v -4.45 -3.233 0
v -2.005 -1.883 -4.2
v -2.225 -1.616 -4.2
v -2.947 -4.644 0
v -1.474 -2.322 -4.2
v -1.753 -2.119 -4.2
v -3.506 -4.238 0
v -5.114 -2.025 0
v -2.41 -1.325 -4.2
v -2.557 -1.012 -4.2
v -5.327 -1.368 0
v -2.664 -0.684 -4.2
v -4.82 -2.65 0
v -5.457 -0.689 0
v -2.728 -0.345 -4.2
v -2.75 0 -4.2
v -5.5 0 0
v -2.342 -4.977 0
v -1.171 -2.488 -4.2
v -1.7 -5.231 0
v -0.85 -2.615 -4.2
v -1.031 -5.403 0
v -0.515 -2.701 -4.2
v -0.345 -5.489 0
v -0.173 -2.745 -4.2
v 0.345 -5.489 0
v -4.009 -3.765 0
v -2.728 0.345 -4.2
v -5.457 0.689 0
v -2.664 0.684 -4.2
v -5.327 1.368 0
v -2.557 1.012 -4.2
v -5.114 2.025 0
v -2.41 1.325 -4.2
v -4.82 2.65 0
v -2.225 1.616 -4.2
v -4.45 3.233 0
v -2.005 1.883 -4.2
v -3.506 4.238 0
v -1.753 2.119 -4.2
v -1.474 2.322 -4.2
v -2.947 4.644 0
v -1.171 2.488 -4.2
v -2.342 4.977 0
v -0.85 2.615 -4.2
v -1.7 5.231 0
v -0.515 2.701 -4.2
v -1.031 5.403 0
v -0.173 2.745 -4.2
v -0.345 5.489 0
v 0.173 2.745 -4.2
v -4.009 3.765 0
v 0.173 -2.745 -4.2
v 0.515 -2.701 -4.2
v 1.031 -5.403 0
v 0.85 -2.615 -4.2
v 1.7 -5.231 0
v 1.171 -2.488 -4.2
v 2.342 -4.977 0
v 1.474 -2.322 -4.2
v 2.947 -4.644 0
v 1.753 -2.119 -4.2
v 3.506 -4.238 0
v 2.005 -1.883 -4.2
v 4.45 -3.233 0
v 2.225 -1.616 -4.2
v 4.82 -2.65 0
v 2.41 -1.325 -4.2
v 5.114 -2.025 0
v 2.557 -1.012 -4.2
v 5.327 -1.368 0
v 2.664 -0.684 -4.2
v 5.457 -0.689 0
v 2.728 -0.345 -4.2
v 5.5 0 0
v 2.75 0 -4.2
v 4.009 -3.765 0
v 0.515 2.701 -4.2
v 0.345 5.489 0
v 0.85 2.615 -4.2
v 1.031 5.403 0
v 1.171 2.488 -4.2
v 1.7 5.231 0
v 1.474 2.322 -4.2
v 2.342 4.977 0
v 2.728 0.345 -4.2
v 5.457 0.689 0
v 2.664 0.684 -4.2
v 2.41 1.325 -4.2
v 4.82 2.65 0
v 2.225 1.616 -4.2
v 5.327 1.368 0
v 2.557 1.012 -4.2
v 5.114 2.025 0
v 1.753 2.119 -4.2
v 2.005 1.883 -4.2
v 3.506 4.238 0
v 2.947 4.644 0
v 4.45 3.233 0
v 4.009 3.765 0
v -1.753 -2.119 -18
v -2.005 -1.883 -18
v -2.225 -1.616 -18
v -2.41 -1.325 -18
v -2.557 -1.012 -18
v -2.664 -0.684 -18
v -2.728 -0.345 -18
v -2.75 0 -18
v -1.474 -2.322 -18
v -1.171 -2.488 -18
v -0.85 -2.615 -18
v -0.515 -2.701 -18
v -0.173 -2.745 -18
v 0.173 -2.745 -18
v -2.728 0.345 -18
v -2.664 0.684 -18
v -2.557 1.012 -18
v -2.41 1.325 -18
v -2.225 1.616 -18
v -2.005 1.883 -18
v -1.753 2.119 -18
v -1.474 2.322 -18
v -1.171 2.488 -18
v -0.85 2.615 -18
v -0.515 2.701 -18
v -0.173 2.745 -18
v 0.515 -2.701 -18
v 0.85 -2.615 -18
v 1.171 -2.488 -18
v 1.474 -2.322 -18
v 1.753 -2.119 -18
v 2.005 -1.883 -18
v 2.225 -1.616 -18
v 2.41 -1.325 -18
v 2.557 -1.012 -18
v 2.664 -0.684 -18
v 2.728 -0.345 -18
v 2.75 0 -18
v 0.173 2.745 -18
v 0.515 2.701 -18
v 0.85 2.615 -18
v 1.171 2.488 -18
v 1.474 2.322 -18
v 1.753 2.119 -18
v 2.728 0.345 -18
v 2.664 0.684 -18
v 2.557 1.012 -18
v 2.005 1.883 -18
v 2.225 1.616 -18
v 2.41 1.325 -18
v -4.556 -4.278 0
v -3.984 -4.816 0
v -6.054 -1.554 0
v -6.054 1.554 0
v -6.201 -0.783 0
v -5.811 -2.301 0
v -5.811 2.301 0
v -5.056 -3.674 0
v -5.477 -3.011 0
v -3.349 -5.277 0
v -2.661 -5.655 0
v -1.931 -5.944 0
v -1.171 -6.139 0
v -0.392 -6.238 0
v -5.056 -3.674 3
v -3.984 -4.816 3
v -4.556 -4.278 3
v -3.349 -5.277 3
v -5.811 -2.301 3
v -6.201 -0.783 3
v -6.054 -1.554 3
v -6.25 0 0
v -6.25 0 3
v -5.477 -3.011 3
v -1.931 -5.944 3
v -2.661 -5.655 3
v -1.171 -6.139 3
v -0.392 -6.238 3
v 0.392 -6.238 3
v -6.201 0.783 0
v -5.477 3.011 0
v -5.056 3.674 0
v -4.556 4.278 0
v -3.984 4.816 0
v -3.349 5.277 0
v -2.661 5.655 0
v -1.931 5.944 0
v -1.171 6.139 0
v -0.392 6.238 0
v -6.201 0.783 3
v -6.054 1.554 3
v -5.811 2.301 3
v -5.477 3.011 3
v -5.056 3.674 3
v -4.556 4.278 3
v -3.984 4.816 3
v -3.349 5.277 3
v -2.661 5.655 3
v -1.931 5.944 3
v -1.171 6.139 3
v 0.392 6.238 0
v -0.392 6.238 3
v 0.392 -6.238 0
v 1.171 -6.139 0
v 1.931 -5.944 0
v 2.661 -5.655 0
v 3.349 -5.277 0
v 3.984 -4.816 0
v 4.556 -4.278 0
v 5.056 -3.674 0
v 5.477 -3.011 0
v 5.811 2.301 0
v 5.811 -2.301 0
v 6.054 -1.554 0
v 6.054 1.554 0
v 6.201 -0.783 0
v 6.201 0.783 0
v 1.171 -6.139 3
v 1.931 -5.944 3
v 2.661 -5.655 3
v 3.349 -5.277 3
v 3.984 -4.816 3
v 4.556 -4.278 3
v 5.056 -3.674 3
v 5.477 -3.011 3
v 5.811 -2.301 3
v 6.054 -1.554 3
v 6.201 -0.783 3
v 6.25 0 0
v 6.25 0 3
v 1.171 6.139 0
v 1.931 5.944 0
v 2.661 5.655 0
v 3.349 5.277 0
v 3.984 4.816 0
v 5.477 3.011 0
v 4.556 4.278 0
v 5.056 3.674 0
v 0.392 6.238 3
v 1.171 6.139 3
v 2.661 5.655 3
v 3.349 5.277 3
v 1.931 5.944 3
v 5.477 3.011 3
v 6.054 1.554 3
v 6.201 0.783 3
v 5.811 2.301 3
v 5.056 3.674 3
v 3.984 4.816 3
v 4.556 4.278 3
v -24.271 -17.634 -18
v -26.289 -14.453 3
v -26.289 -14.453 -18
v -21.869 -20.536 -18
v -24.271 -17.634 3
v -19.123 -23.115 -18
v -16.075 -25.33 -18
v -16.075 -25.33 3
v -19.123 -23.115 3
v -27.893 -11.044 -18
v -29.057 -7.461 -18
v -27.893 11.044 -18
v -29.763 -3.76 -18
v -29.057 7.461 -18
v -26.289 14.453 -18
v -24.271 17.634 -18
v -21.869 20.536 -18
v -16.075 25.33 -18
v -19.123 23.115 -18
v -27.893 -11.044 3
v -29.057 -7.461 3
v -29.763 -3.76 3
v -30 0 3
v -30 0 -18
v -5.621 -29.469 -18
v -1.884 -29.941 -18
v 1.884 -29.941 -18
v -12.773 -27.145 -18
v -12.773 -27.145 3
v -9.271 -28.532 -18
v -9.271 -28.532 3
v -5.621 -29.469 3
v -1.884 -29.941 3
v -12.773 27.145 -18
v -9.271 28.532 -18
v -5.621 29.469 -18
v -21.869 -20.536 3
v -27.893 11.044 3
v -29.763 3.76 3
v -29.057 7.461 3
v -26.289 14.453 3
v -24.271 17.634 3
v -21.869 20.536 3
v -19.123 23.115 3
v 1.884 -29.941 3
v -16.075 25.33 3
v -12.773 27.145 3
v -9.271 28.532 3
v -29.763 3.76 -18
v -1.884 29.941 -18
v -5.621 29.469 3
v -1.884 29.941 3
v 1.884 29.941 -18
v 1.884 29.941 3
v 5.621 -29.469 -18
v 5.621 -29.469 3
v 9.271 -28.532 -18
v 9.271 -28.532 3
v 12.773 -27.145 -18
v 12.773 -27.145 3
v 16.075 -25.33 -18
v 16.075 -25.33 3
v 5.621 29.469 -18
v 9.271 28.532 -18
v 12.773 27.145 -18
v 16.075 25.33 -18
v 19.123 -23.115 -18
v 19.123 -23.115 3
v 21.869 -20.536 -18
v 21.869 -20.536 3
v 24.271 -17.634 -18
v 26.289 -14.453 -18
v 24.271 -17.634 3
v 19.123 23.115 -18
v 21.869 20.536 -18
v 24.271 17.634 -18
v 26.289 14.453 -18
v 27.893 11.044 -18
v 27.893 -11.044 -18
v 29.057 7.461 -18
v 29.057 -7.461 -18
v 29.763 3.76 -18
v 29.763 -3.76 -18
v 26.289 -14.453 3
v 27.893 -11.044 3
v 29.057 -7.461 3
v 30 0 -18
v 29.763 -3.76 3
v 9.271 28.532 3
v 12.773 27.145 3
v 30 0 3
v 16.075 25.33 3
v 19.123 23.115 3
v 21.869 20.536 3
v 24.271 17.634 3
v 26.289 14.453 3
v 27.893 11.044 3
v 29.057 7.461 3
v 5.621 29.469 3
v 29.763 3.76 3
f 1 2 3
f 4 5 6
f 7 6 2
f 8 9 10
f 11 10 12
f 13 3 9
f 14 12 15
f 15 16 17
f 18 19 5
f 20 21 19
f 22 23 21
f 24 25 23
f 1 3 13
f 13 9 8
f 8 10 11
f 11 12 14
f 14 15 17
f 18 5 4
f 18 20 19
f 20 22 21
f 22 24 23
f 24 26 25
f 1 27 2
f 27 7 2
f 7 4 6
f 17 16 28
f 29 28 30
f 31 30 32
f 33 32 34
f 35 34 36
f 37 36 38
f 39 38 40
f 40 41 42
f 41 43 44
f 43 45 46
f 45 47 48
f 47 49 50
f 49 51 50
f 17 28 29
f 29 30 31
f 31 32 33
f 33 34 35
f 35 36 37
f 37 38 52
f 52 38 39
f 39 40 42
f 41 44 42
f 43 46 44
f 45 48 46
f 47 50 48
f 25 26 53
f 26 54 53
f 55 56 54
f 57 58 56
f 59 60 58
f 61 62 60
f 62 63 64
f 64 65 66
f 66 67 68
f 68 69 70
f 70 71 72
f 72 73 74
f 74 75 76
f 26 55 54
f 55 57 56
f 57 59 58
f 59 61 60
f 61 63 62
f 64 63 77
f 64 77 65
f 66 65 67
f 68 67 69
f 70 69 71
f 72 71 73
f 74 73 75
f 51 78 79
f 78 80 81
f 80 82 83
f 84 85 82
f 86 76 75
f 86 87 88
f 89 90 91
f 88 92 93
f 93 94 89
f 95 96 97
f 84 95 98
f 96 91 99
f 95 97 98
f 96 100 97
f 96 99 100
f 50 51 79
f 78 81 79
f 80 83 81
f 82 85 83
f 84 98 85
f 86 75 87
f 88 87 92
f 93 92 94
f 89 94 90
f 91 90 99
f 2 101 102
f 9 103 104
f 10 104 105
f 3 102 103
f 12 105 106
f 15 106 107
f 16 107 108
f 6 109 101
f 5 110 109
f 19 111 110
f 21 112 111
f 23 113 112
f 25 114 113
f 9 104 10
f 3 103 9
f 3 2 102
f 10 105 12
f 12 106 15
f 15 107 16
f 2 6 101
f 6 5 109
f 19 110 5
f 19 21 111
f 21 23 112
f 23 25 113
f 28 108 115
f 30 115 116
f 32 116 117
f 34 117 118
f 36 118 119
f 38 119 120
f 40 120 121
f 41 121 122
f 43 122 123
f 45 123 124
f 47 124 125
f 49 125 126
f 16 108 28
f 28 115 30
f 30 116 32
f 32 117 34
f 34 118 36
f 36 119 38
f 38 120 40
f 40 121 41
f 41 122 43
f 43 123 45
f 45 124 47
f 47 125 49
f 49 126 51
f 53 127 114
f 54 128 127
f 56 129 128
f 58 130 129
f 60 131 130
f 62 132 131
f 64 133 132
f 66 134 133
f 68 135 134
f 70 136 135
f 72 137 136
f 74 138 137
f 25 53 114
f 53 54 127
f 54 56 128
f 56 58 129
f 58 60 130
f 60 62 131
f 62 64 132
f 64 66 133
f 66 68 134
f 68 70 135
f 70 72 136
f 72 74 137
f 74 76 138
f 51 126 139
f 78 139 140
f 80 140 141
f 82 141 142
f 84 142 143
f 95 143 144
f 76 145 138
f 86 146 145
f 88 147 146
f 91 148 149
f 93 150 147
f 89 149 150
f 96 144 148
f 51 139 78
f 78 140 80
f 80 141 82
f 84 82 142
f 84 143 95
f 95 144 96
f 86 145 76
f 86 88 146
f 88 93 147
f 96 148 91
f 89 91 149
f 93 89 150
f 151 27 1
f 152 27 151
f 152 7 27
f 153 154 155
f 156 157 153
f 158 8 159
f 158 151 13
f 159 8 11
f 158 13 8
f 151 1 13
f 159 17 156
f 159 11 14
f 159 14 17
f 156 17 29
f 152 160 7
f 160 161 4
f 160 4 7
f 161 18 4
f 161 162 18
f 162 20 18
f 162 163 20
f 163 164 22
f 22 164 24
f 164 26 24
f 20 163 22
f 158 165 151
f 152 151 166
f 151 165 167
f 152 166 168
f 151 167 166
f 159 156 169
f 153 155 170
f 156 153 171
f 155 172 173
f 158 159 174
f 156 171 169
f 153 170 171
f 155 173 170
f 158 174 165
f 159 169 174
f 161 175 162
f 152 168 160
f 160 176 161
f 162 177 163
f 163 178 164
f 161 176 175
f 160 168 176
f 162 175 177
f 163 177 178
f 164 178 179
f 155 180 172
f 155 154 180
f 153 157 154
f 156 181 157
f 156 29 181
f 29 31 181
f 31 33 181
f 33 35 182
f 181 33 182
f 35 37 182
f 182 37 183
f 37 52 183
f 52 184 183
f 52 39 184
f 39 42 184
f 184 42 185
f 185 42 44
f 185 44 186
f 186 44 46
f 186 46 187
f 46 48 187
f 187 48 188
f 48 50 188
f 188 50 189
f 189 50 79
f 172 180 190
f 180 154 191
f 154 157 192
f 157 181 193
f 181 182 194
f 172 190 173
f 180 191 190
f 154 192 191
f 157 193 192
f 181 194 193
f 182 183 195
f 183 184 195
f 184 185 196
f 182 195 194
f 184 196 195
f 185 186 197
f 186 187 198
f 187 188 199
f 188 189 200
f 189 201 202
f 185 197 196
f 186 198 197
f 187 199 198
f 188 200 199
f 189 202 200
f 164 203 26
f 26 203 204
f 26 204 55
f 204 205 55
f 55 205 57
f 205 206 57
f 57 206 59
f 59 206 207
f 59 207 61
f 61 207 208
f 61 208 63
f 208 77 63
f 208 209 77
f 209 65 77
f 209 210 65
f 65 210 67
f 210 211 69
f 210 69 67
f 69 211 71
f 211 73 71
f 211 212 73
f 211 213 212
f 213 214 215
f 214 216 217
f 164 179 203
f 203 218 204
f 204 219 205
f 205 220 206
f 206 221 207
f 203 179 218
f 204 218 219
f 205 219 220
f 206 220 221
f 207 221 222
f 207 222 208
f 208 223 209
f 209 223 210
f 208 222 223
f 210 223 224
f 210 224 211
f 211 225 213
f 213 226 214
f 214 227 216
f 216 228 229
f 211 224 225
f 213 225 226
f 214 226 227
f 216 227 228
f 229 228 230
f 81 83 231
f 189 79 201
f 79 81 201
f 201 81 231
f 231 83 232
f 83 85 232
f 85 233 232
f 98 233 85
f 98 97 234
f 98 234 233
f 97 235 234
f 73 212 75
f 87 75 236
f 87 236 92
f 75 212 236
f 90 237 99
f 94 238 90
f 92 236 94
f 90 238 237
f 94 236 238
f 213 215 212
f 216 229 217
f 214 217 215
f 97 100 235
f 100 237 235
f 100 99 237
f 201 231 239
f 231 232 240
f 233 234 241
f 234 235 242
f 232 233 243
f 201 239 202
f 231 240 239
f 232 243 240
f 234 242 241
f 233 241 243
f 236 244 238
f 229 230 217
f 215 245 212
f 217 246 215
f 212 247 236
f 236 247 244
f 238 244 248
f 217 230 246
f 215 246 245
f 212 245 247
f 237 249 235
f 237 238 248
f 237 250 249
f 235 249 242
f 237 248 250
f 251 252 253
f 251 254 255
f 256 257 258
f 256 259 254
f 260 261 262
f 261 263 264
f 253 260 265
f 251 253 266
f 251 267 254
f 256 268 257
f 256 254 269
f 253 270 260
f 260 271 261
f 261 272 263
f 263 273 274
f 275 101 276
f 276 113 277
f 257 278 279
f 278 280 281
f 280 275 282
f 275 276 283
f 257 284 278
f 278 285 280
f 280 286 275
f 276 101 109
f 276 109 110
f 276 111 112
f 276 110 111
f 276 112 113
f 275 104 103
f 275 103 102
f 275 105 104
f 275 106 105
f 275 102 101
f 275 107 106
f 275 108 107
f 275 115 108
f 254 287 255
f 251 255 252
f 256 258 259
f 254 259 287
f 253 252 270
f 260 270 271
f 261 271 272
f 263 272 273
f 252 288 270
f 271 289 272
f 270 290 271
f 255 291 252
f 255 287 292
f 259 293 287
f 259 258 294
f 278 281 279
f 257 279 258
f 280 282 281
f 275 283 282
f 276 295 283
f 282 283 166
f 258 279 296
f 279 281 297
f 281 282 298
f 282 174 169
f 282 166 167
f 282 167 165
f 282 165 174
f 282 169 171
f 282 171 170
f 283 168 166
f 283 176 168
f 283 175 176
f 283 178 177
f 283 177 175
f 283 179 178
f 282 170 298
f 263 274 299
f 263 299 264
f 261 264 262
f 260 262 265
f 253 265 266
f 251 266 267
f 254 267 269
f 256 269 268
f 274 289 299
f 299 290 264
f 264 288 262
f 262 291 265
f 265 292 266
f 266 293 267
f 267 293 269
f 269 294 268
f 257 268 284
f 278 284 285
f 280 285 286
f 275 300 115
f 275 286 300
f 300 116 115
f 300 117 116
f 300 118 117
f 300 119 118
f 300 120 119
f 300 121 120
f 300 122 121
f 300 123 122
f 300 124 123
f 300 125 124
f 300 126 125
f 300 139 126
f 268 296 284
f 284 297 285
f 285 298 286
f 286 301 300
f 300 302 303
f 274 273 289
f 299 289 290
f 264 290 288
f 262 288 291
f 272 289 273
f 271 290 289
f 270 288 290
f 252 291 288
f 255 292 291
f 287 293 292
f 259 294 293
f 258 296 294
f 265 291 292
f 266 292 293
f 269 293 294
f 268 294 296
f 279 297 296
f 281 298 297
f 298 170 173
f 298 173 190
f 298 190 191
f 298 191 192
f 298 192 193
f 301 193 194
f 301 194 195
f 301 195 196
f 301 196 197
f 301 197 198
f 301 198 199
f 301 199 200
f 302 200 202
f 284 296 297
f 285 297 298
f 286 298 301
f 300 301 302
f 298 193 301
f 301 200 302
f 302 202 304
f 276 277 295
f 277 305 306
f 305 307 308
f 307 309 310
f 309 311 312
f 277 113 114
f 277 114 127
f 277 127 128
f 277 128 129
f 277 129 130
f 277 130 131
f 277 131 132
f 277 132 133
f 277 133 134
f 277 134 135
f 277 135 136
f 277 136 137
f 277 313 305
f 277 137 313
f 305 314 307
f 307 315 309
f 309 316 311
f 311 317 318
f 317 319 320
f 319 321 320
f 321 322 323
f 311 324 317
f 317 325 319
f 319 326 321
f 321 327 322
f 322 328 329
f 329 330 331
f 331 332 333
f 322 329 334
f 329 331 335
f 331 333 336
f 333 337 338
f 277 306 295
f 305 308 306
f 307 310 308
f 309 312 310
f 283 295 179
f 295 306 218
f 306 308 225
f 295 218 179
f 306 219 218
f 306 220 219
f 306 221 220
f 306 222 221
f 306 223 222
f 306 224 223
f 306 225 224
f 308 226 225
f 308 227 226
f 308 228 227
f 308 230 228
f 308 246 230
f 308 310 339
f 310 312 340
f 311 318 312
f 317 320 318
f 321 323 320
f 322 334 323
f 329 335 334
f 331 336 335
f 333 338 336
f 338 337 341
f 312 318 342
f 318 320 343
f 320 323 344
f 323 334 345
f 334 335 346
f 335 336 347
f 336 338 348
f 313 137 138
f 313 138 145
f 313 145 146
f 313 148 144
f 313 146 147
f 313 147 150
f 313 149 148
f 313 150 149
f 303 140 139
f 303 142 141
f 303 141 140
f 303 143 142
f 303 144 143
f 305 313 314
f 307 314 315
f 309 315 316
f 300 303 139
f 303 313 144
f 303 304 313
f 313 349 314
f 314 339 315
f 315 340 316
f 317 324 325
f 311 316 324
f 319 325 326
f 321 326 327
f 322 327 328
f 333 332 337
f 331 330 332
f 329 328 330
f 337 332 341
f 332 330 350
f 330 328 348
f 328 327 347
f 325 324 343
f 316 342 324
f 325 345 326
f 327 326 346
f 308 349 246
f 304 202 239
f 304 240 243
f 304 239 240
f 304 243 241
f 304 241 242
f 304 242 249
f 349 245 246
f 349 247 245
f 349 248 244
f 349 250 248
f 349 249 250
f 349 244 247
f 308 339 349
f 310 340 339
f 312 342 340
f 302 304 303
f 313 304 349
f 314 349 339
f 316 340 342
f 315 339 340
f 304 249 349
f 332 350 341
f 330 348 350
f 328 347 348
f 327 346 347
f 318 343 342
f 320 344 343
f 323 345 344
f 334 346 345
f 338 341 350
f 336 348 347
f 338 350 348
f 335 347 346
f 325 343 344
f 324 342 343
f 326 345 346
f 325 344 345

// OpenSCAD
$fn = 50;


difference() {
	union() {
		translate(v = [0, 0, -18.0000000000]) {
			cylinder(h = 21, r = 30.0000000000);
		}
	}
	union() {
		translate(v = [0, 0, 0]) {
			rotate(a = [0, 0, 0]) {
				difference() {
					union() {
						translate(v = [0, 0, -21.0000000000]) {
							cylinder(h = 21, r = 2.2500000000);
						}
						translate(v = [0, 0, -4.2000000000]) {
							cylinder(h = 4.2000000000, r1 = 2.7500000000, r2 = 5.5000000000);
						}
						translate(v = [0, 0, -21.0000000000]) {
							cylinder(h = 21, r = 2.7500000000);
						}
						translate(v = [0, 0, -21.0000000000]) {
							cylinder(h = 21, r = 2.2500000000);
						}
					}
					union();
				}
			}
		}
		#cylinder(h = 3, r = 6.2500000000);
	}
}
